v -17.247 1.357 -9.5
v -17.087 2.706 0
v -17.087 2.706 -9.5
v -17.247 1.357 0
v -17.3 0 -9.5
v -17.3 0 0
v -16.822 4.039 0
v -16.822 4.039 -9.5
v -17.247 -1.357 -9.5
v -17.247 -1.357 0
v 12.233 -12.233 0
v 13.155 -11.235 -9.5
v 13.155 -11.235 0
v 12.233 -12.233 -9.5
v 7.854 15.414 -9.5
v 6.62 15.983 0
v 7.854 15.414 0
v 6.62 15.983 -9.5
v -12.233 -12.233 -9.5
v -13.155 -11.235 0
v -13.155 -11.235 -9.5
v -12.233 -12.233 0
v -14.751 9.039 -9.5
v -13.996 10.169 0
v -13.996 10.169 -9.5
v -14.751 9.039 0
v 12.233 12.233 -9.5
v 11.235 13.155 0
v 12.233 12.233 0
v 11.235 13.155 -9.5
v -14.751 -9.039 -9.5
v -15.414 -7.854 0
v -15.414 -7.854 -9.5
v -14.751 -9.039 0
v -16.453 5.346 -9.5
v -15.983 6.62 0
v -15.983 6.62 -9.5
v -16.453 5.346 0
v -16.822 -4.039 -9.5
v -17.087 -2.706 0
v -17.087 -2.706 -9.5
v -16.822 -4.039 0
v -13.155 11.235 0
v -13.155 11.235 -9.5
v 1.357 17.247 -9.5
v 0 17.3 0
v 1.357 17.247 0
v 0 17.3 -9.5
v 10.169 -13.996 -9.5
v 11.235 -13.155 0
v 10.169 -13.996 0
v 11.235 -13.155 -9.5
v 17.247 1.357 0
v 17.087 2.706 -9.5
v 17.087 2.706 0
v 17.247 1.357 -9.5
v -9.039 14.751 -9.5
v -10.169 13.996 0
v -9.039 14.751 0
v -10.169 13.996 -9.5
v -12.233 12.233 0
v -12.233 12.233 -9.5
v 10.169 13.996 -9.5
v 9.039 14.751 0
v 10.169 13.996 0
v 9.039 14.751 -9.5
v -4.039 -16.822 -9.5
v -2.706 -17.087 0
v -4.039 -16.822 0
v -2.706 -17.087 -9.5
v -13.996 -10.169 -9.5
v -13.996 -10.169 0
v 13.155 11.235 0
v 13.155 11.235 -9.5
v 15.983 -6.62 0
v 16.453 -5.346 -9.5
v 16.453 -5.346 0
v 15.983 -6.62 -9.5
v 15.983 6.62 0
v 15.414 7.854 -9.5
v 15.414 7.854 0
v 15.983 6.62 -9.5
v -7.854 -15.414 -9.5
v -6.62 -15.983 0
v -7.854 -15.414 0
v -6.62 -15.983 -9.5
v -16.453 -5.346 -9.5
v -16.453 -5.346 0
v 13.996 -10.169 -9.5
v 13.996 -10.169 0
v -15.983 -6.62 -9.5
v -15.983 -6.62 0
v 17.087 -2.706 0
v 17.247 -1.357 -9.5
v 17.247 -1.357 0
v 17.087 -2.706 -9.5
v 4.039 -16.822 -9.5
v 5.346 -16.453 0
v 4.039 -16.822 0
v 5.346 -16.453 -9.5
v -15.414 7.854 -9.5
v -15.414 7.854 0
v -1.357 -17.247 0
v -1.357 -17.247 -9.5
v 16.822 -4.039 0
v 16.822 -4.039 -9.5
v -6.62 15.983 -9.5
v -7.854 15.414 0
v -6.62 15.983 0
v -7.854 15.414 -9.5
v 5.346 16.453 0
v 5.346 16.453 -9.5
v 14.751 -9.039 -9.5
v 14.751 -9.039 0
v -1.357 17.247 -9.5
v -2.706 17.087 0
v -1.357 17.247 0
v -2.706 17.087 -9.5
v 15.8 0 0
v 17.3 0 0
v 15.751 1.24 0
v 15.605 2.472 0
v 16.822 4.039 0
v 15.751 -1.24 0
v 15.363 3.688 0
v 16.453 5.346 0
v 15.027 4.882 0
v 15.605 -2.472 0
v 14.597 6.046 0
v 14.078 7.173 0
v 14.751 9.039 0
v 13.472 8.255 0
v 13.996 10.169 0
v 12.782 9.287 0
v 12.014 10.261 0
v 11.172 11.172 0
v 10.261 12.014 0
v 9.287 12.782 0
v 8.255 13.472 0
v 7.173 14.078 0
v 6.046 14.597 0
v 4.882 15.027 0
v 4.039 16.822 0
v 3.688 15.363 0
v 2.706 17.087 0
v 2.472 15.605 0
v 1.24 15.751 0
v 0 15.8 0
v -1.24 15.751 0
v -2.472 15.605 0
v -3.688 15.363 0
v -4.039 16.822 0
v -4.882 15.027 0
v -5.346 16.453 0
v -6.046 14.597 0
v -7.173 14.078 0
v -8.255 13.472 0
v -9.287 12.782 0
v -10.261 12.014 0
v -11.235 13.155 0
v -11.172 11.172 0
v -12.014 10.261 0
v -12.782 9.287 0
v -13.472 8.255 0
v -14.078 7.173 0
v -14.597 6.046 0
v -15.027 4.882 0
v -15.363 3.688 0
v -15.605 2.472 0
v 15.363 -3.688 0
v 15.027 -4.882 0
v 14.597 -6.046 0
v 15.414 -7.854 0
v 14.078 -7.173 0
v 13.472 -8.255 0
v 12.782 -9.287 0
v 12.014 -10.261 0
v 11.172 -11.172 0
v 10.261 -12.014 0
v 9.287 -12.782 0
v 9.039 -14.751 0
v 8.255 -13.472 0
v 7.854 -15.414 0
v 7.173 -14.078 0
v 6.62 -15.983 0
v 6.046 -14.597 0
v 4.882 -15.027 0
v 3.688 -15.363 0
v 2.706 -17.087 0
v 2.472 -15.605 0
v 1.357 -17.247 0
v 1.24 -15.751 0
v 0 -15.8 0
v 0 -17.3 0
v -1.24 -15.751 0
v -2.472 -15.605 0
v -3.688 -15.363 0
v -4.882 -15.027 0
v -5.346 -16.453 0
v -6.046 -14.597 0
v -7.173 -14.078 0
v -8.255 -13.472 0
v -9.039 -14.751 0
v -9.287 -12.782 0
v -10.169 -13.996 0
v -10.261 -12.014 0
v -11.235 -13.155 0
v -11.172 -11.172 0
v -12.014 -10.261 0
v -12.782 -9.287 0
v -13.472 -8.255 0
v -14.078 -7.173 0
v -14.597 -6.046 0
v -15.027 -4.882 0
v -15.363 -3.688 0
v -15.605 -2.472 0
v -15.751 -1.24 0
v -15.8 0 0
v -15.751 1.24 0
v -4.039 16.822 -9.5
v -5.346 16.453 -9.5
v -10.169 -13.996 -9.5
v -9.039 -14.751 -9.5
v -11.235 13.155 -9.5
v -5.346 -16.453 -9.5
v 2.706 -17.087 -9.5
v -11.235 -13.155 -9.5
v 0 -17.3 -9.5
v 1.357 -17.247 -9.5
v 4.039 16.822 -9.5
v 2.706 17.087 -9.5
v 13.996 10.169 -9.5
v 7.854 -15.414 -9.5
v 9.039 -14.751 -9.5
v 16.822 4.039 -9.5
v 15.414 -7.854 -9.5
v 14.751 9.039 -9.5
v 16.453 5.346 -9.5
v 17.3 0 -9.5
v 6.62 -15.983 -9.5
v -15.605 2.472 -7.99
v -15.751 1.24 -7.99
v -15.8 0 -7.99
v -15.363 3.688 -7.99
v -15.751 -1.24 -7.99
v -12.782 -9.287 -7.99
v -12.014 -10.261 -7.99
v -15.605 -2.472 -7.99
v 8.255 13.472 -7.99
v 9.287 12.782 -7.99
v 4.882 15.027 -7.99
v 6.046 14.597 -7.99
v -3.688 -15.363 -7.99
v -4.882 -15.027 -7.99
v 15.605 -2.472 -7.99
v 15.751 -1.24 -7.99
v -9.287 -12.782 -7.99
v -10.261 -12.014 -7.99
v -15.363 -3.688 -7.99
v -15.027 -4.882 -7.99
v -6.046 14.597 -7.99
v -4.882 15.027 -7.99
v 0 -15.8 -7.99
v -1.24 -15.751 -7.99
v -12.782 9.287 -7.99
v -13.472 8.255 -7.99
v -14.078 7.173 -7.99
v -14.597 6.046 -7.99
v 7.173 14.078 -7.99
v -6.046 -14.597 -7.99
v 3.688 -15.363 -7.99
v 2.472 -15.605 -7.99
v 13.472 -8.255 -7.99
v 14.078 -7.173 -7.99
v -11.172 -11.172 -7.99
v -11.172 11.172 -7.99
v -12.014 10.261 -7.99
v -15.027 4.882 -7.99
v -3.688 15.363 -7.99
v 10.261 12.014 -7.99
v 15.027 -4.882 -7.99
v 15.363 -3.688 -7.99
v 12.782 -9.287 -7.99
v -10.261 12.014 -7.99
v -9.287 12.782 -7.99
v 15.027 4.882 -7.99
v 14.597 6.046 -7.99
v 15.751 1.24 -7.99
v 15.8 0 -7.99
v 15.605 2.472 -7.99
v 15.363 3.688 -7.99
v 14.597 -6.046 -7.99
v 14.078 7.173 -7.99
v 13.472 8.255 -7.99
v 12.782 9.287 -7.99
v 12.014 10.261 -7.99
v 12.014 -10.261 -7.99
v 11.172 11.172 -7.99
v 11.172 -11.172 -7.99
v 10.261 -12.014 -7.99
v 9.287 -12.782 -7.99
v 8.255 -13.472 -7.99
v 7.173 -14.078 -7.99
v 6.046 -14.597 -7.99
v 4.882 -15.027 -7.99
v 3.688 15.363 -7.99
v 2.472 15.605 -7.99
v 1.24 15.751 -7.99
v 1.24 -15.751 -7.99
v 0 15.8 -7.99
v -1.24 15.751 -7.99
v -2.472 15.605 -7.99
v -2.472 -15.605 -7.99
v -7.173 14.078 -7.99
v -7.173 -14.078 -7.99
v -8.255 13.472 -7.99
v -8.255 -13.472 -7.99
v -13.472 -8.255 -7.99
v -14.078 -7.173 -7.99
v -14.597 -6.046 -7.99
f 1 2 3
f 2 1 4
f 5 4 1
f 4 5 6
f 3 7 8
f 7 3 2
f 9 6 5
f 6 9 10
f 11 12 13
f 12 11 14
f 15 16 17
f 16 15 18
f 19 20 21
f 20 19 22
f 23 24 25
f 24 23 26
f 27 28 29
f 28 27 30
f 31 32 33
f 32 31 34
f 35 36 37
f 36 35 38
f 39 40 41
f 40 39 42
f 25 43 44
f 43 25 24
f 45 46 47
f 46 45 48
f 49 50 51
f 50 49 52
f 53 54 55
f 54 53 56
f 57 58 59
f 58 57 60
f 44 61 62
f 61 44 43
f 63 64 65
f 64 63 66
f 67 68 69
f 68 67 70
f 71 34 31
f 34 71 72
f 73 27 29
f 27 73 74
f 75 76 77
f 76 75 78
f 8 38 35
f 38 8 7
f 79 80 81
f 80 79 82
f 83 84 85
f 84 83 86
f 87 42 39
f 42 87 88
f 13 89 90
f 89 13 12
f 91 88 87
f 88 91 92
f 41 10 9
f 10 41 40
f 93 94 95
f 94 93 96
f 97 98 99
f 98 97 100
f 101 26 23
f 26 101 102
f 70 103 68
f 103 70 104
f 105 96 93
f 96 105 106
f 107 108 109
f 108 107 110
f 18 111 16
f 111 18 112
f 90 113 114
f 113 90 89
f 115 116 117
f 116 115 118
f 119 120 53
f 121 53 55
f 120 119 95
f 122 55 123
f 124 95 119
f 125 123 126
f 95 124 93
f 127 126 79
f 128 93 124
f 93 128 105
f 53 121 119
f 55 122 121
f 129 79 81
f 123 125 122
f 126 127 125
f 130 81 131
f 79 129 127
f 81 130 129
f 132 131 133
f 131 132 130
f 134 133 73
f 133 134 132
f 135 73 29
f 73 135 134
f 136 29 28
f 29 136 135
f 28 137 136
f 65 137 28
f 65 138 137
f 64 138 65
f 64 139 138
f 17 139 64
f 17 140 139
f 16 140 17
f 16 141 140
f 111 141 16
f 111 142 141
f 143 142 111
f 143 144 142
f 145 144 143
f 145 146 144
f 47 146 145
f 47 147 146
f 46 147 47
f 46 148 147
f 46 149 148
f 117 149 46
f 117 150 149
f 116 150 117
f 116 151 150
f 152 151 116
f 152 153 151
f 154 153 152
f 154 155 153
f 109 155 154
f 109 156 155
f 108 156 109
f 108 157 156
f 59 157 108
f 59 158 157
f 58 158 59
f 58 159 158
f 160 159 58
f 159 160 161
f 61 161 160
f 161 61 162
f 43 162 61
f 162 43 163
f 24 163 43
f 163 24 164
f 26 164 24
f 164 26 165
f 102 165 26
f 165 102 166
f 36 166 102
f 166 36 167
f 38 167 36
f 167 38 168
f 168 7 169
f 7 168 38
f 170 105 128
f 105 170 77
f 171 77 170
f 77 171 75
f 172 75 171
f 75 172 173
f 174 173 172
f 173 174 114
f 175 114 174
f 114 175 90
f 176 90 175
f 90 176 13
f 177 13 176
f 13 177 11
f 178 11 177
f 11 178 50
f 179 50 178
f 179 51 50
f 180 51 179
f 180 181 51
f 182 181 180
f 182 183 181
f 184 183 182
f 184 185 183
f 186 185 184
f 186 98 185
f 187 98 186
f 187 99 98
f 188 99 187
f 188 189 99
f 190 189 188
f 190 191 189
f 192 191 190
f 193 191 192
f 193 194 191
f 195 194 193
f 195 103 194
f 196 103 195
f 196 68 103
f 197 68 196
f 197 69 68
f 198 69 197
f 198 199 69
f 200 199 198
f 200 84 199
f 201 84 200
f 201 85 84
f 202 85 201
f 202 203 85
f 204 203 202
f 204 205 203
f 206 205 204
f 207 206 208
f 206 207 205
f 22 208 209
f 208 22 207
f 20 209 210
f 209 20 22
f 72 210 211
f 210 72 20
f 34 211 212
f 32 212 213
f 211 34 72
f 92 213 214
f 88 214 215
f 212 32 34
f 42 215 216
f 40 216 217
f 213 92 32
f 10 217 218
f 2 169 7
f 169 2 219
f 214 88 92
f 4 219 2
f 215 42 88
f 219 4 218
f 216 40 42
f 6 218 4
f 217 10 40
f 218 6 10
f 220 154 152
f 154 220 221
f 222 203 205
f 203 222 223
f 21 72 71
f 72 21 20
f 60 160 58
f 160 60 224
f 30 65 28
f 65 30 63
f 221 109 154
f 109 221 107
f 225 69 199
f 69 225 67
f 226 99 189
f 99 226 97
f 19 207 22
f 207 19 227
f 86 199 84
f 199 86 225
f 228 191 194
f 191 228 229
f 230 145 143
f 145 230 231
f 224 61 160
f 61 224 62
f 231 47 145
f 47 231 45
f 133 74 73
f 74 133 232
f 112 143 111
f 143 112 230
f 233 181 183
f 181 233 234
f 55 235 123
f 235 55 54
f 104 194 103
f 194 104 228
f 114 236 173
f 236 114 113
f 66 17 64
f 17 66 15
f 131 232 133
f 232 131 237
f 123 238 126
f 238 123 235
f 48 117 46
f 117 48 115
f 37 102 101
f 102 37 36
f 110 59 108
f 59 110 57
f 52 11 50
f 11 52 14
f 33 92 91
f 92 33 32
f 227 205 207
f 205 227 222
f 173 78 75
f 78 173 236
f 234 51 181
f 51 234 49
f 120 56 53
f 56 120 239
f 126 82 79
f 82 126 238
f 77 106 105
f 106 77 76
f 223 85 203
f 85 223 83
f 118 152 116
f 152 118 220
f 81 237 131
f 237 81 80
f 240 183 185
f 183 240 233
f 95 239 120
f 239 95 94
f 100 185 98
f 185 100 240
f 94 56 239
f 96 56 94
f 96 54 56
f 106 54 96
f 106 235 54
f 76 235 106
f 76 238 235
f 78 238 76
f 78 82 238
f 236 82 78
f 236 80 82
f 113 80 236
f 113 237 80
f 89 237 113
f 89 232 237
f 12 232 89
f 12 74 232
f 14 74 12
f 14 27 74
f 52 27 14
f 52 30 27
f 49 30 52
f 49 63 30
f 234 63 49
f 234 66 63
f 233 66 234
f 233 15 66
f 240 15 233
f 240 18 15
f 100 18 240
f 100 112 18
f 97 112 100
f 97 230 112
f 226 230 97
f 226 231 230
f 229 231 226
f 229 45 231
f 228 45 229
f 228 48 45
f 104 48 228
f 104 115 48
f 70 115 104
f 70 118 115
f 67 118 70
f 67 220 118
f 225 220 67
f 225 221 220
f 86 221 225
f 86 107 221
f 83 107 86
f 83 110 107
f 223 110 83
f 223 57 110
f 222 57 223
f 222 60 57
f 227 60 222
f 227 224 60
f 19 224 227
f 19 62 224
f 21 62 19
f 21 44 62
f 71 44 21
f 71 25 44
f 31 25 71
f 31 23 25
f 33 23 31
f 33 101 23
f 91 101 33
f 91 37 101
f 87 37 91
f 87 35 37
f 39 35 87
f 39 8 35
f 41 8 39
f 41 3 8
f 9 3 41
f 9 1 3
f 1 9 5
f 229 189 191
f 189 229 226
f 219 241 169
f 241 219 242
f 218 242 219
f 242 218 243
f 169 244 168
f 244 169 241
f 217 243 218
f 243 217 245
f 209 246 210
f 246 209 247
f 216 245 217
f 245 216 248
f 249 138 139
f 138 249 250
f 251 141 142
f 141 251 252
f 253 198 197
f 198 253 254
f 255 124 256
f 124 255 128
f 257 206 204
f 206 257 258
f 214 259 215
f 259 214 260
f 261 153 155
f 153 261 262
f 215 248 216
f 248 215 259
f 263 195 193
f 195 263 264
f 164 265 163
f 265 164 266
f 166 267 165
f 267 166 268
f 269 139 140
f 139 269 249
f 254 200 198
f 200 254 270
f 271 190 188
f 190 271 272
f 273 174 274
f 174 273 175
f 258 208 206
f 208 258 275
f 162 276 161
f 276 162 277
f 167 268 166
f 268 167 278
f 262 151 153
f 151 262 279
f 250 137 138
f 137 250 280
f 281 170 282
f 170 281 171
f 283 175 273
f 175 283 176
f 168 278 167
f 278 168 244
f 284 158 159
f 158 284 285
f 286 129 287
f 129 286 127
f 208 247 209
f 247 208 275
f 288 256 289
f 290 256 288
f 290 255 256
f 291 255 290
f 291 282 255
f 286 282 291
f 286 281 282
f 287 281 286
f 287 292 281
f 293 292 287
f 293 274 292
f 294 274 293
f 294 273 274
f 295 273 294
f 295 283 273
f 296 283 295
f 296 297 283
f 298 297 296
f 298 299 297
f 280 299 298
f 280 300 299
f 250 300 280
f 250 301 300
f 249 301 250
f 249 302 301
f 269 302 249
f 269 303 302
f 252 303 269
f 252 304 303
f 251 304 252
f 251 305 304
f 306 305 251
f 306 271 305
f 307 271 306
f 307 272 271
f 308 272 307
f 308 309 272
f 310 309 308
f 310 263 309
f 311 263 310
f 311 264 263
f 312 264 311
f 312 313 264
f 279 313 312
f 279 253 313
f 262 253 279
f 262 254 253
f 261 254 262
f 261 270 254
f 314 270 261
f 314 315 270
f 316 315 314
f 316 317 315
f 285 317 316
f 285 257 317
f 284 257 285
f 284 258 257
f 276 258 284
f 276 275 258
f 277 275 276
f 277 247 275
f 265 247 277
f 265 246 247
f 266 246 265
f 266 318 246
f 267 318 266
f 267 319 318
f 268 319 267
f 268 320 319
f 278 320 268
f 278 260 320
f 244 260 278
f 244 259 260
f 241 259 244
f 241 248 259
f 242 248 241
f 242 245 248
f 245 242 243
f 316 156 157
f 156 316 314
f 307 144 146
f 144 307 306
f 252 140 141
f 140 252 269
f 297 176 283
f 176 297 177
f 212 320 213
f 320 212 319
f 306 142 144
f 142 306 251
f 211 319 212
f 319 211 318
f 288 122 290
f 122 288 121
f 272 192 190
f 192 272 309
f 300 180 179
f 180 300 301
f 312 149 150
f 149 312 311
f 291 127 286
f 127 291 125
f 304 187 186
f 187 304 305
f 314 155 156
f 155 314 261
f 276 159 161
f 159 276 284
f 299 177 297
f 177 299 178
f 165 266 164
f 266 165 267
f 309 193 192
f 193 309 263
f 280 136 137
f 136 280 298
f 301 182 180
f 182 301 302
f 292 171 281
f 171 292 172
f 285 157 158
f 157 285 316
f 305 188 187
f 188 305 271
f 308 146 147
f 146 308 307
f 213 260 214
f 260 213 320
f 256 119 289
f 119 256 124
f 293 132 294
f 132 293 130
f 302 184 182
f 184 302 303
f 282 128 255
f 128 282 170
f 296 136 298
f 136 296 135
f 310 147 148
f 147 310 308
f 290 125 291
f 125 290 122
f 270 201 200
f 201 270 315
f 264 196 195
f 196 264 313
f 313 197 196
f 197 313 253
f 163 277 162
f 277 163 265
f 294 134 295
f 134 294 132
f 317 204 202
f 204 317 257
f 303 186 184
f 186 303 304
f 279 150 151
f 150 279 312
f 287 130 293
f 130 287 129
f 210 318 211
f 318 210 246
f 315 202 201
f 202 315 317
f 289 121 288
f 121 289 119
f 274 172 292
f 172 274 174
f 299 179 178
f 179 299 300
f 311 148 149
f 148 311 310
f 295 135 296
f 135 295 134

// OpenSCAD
innerDiameter       = 31.6;
height              = 8;
thickness           = 1.5;
manifoldCorrection  = 0.01;


$fn = 80;

rotate( [0, 180, 0] )
    difference()
    {
        cylinder(d=innerDiameter + thickness * 2, h = height + thickness);
        translate( [0, 0, -manifoldCorrection] )
            cylinder(d=innerDiameter, h = height);
    }
